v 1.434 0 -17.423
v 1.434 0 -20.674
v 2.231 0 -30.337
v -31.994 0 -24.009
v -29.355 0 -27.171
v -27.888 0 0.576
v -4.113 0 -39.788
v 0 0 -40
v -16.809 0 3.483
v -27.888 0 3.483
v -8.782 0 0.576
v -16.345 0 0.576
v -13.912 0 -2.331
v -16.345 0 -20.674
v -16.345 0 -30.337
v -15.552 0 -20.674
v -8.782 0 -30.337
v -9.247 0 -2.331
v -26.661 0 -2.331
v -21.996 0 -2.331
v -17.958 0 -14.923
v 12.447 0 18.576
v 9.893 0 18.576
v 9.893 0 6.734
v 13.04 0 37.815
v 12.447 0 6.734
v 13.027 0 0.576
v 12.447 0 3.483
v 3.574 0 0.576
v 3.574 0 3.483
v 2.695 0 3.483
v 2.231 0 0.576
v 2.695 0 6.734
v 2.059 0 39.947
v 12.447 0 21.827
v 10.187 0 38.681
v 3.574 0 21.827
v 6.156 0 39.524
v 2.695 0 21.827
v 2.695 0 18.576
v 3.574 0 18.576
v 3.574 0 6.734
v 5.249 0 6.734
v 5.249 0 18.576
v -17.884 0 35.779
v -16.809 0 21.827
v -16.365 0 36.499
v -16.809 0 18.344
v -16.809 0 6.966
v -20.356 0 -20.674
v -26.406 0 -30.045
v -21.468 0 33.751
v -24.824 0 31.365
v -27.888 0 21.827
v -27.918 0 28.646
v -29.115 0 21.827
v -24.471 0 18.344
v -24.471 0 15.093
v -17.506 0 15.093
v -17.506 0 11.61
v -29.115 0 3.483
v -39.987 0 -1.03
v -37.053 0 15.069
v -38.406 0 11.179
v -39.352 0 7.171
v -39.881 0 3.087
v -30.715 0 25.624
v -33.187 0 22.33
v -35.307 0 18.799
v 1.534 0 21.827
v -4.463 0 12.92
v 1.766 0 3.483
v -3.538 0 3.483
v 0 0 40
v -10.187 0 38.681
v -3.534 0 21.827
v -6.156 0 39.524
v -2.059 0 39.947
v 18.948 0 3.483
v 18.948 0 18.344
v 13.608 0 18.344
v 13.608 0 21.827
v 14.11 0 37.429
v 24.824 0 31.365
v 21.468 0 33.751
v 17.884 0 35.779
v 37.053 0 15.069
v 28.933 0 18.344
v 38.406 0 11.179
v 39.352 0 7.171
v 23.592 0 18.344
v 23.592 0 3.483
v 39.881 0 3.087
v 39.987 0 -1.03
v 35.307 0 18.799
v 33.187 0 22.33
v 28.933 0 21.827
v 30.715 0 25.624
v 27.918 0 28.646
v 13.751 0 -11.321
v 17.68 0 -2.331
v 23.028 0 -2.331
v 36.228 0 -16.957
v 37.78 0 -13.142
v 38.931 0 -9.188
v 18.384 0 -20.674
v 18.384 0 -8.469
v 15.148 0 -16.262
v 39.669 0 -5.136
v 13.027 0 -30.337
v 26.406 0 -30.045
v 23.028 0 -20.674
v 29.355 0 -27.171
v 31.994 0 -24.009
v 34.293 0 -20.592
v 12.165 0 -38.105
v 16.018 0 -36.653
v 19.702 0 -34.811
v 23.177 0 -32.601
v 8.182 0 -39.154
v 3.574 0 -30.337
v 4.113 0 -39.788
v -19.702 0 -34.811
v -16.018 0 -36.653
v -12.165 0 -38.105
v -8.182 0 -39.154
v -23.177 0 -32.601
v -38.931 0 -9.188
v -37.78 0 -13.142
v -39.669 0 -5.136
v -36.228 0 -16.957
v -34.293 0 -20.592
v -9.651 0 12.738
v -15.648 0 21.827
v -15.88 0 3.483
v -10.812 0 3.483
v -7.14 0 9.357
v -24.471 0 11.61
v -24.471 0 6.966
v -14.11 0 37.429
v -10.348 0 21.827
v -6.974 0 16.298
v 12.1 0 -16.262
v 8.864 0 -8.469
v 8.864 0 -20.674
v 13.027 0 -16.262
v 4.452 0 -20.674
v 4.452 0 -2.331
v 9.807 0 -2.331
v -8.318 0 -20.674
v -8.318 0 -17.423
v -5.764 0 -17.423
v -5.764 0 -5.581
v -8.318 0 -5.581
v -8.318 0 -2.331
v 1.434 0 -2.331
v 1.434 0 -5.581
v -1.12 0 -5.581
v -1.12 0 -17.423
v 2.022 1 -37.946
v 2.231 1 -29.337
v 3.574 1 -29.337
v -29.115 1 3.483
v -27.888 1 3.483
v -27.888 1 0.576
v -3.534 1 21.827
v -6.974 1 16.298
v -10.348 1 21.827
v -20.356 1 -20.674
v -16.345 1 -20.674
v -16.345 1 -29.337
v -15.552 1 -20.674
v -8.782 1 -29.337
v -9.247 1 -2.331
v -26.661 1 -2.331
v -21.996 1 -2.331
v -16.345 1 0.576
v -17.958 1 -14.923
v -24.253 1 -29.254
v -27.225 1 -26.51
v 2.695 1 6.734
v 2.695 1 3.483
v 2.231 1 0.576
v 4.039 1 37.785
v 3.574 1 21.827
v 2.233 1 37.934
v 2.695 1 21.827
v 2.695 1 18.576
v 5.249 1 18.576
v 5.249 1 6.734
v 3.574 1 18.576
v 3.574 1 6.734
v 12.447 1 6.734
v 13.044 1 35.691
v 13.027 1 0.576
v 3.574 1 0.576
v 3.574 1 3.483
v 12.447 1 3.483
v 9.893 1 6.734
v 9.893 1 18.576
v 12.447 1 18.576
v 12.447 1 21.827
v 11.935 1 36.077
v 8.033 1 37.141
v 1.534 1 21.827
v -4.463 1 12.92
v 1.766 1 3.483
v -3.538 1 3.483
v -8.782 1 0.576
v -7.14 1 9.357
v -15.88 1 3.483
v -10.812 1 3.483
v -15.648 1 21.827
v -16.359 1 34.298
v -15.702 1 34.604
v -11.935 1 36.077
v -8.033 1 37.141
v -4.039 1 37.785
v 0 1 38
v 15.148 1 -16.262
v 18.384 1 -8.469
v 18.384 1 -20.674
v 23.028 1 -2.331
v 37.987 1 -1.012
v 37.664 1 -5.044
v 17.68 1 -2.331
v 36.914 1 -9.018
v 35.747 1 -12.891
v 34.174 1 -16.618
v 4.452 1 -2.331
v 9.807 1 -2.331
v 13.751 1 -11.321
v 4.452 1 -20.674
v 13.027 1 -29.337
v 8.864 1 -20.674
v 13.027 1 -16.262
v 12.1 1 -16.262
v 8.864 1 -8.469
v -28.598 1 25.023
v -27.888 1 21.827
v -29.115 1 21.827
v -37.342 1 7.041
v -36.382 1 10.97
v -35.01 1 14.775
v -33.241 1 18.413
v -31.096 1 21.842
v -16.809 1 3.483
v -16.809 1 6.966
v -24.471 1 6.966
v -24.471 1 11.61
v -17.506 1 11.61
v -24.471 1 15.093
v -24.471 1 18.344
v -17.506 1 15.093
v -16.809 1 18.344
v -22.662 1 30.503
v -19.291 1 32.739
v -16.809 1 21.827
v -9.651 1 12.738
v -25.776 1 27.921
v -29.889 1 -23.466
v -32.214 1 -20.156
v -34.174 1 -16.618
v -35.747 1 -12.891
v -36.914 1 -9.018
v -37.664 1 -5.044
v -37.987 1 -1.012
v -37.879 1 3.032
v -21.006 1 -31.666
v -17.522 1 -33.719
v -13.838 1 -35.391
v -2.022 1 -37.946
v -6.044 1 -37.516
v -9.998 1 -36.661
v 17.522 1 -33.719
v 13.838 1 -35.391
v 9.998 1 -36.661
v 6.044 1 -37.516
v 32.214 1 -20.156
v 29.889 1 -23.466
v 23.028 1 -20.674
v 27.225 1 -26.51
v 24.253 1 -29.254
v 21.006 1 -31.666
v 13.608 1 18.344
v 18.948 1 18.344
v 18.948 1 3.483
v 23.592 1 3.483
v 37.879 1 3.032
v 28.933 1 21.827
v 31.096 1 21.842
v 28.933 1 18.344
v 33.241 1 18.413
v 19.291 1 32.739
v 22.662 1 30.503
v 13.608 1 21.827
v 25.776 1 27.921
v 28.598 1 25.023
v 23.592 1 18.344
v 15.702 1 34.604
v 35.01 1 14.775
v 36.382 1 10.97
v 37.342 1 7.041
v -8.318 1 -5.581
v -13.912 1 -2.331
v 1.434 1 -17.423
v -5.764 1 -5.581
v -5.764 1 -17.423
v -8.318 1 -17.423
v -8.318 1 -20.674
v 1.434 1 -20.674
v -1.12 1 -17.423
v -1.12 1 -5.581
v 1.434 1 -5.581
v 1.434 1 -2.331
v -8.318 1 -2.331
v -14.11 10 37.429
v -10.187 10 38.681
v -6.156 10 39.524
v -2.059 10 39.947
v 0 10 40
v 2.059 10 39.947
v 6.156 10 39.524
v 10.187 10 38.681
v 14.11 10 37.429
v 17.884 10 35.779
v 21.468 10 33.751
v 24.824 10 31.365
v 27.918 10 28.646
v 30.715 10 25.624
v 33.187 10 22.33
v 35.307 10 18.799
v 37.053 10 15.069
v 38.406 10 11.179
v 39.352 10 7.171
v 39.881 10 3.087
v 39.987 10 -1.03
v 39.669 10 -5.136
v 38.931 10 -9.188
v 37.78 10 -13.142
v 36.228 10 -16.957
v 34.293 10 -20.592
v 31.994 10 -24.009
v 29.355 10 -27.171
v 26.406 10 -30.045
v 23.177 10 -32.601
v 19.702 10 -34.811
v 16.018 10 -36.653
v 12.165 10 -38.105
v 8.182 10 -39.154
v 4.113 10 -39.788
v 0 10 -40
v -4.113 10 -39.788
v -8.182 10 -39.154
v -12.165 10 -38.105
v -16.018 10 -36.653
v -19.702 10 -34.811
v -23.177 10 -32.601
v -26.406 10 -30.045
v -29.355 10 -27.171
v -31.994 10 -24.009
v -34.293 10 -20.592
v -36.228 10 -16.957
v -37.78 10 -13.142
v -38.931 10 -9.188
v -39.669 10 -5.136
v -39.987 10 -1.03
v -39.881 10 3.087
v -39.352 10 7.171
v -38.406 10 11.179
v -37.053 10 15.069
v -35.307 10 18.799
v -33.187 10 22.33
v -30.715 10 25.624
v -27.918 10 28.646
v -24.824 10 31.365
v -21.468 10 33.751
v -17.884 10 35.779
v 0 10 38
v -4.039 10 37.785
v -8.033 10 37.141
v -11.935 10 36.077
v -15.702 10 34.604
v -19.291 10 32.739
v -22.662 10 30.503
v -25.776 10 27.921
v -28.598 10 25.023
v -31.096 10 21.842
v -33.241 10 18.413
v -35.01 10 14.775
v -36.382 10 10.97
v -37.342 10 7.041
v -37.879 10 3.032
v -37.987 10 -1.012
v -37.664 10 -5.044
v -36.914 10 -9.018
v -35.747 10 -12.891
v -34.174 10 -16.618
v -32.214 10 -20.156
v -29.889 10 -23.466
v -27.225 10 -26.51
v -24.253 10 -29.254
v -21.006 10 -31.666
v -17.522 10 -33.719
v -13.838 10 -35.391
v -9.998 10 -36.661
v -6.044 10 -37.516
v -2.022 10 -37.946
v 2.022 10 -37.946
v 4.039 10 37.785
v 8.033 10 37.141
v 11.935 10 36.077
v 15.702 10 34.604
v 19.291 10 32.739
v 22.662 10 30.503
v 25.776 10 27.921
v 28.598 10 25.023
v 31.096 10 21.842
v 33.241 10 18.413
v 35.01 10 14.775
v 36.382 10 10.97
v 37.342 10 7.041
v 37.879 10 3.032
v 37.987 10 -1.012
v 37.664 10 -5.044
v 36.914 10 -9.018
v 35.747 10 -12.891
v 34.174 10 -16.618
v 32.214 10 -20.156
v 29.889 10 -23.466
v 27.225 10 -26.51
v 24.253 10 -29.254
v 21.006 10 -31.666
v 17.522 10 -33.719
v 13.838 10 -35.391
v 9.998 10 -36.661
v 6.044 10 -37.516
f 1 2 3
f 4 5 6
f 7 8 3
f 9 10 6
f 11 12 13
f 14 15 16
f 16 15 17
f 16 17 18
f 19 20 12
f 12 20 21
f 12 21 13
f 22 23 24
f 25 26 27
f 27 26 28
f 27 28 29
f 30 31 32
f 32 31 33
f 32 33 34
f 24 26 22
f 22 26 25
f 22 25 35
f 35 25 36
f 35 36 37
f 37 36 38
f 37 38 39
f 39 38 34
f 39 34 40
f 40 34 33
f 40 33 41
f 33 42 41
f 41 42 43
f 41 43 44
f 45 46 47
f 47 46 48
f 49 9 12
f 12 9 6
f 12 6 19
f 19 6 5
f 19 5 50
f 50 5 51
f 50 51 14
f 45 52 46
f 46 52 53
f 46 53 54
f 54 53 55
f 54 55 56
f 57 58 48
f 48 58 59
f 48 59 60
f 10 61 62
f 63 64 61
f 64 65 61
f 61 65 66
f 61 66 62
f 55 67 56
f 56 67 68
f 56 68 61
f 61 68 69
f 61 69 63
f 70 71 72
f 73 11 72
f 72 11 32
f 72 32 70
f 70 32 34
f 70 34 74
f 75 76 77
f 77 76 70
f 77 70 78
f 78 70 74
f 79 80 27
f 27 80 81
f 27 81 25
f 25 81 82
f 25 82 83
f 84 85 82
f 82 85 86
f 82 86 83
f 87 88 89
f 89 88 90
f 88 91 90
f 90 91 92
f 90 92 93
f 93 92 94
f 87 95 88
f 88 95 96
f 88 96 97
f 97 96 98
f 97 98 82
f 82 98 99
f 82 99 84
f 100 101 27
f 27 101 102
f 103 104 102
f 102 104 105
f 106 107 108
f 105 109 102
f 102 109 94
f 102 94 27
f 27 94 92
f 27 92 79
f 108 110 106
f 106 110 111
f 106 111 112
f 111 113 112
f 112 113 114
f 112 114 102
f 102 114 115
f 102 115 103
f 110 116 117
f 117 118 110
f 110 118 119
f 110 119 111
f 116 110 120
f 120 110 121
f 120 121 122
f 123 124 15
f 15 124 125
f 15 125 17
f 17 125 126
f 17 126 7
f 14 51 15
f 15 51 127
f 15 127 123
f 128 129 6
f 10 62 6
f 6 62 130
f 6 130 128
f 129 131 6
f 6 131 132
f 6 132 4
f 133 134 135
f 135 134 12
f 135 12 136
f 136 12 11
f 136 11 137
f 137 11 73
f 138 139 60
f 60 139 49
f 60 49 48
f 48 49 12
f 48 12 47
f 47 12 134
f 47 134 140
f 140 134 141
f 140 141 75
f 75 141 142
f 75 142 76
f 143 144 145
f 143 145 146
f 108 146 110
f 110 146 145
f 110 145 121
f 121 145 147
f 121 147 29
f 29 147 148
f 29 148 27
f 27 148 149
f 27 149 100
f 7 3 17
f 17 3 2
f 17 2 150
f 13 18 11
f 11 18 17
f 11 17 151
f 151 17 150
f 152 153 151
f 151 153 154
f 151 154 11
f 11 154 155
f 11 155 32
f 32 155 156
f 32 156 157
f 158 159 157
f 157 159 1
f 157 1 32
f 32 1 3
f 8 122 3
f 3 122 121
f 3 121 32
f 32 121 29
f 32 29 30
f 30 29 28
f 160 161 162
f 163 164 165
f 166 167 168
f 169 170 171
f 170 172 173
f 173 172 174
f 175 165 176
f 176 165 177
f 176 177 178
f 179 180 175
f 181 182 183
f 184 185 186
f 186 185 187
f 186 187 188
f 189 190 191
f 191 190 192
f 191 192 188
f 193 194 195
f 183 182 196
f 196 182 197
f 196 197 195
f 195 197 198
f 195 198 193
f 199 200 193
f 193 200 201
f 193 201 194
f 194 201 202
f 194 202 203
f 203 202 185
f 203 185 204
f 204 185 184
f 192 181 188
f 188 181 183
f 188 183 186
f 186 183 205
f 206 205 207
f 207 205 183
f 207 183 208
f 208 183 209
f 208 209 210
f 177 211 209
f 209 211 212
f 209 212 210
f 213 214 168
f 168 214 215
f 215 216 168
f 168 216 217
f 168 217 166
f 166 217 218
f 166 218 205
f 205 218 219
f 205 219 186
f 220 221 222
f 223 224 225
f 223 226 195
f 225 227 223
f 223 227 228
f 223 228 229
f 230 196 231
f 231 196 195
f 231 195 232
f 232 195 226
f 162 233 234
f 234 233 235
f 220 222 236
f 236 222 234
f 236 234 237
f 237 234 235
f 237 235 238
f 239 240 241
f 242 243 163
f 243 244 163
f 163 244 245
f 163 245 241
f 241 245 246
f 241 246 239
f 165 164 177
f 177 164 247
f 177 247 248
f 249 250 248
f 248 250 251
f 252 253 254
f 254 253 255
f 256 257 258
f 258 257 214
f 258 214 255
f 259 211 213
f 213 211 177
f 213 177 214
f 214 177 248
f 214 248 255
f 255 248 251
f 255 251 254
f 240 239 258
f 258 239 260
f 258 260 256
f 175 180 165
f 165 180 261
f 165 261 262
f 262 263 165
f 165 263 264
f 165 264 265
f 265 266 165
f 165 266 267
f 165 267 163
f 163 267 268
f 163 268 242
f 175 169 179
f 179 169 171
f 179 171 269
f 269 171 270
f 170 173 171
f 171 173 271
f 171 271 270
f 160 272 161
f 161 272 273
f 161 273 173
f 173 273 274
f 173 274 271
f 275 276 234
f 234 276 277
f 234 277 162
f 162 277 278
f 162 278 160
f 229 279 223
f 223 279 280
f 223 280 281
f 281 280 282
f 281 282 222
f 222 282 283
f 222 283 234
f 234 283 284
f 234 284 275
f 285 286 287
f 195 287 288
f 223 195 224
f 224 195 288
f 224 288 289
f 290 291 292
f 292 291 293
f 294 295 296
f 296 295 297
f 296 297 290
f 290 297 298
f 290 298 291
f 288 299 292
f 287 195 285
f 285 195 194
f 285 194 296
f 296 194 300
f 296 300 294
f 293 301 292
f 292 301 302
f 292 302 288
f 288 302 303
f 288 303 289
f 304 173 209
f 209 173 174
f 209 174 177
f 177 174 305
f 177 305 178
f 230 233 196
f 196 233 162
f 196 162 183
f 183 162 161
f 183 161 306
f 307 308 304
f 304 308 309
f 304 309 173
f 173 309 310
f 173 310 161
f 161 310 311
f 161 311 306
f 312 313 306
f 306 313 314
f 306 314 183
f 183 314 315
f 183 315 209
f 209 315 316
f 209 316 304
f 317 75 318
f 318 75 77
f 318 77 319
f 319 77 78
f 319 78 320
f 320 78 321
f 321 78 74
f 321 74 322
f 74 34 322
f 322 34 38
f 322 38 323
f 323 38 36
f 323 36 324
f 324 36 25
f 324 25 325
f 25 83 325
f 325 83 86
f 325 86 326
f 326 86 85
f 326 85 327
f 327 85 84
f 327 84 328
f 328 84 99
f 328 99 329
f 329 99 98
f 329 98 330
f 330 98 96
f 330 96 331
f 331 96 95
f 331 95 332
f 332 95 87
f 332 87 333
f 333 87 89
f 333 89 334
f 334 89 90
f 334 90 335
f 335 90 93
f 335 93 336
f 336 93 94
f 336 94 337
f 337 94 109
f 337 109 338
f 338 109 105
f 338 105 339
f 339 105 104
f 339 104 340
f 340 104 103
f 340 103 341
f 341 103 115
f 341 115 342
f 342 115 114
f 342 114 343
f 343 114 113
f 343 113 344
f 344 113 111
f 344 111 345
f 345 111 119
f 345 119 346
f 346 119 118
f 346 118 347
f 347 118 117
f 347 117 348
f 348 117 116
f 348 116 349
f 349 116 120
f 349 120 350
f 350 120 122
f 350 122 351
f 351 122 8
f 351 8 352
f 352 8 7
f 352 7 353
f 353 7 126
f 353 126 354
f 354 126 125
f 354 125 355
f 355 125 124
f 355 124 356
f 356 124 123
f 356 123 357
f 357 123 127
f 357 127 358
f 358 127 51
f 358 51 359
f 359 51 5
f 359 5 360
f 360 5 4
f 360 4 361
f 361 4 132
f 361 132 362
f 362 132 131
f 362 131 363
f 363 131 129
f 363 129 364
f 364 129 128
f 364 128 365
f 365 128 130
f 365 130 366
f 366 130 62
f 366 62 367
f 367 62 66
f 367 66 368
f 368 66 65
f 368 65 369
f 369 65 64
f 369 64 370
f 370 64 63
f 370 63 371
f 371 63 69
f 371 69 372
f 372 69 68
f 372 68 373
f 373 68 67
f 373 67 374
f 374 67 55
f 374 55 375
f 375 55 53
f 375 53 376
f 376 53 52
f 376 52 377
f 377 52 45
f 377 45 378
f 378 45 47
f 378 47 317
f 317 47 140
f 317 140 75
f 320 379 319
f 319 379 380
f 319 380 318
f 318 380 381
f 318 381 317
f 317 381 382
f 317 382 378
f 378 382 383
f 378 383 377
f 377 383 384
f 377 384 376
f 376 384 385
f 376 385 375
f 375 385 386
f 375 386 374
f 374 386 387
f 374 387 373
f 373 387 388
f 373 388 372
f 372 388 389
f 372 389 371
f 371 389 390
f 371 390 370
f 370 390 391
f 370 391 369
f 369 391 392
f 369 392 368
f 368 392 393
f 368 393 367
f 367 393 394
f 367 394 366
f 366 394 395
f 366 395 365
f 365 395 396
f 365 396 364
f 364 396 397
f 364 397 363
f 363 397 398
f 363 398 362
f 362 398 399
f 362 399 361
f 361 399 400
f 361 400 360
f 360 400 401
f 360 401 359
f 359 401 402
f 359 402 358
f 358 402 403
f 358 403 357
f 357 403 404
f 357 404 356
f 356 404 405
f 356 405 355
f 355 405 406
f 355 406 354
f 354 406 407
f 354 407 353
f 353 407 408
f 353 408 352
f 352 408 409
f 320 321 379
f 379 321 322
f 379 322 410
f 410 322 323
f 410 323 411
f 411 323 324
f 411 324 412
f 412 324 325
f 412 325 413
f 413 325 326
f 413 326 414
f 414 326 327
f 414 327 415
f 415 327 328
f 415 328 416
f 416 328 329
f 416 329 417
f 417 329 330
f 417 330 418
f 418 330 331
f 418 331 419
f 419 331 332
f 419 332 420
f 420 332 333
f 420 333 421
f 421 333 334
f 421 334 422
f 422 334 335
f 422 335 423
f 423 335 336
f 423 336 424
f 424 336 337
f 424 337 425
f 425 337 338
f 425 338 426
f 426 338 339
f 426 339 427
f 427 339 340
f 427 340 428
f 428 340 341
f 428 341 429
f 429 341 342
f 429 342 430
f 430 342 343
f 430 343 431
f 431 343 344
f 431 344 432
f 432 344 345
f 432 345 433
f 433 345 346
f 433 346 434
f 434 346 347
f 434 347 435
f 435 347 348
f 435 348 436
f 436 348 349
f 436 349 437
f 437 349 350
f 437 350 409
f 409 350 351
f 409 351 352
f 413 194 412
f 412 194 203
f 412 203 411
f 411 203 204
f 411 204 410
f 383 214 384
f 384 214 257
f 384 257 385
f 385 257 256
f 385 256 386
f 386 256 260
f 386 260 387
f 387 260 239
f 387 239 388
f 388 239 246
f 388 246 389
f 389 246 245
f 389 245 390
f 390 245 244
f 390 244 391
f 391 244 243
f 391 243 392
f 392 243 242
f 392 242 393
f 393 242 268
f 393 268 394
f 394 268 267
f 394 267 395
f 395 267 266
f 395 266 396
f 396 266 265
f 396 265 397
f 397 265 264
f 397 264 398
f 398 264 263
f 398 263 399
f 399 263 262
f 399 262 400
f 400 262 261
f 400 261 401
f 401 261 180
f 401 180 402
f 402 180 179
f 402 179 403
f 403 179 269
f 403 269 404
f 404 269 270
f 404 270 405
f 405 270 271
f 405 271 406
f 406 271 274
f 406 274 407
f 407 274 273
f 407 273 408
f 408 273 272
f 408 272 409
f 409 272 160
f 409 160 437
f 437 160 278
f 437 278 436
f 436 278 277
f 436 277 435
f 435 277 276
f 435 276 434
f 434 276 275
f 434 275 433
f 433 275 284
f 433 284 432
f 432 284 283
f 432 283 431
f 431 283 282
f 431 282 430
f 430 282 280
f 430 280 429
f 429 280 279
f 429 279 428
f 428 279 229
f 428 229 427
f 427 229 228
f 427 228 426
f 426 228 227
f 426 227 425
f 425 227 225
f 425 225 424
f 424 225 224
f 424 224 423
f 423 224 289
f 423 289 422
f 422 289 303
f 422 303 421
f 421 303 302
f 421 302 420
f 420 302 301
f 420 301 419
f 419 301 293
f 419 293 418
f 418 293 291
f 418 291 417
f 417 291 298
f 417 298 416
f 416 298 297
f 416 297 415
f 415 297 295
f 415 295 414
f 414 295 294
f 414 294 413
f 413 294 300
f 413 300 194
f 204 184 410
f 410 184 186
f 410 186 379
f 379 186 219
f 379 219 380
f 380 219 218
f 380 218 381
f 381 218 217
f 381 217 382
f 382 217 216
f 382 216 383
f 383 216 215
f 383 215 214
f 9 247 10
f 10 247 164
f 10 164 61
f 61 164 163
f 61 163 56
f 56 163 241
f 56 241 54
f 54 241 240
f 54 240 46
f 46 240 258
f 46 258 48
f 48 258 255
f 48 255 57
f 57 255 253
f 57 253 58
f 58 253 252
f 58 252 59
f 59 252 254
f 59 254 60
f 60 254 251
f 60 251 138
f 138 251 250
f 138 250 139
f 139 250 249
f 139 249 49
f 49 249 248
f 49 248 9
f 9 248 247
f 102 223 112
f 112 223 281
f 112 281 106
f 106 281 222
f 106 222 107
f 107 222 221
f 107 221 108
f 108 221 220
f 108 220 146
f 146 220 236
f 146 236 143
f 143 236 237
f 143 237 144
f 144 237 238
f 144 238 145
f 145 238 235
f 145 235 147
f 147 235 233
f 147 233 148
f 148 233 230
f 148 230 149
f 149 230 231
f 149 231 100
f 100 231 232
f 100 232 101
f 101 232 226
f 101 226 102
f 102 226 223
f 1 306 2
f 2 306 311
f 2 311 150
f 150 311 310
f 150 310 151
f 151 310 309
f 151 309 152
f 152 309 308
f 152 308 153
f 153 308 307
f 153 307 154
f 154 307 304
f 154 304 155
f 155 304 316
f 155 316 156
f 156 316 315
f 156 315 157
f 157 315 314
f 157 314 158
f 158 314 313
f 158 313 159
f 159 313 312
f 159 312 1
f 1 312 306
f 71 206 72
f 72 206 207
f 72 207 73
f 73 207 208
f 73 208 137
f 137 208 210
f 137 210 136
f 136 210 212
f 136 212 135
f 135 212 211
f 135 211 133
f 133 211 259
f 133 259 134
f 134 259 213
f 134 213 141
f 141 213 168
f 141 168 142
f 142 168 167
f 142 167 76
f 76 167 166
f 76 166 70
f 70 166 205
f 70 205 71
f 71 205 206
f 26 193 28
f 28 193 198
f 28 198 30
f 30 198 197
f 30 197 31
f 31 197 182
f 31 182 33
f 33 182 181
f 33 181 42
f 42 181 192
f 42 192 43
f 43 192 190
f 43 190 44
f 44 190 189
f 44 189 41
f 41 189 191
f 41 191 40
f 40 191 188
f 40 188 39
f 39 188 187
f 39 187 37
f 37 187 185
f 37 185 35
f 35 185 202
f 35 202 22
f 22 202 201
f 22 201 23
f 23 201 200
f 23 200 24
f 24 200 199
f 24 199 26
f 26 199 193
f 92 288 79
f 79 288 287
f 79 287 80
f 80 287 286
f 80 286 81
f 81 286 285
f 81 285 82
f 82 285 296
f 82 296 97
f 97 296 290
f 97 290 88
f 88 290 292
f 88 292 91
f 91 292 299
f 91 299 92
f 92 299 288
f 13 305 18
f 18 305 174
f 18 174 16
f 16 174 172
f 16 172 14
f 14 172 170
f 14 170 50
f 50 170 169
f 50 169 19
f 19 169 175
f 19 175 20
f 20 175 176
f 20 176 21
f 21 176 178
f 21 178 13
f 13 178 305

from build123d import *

# Parameters (mm, degrees)
SKETCH1_R           = 40
BOSS_EXTRUDE1_DEPTH = 10
SKETCH2_R           = 38
CUT_EXTRUDE1_DEPTH  = 9
CUT_EXTRUDE2_DEPTH  = 8


with BuildPart() as part:
    # Sketch1 → Boss-Extrude1 (new body)
    with BuildSketch(Plane(origin=(0, 0, 0), x_dir=(1, 0, 0), z_dir=(0, 1, 0))):
        with Locations(Location((0, 0, 0), (0, 0, 270))):
            Circle(SKETCH1_R)
    extrude(amount=BOSS_EXTRUDE1_DEPTH)

    # Sketch2 → Cut-Extrude1 (cut)
    with BuildSketch(Plane(origin=(0, 10, 0), x_dir=(1, 0, 0), z_dir=(0, 1, 0))):
        with Locations(Location((0, 0, 0), (0, 0, 270))):
            Circle(SKETCH2_R)
    extrude(amount=-CUT_EXTRUDE1_DEPTH, mode=Mode.SUBTRACT)

    # Sketch4 → Cut-Extrude2 (cut)
    with BuildSketch(Plane.XZ):
        Polygon((-29.11512784, 3.483476928), (-29.11512784, 21.826543334), (-16.809019998, 21.826543334), (-16.809019998, 18.343682624), (-24.47131356, 18.343682624), (-24.47131356, 15.093012628), (-17.50559214, 15.093012628), (-17.50559214, 11.610151918), (-24.47131356, 11.610151918), (-24.47131356, 6.966337638), (-16.809019998, 6.966337638), (-16.809019998, 3.483476928), align=None)
        Polygon((1.766237122, 3.483476928), (-3.537869501, 3.483476928), (-7.140453548, 9.357176396), (-10.811969213, 3.483476928), (-15.880257142, 3.483476928), (-9.651015643, 12.738453669), (-15.648066428, 21.826543334), (-10.347587785, 21.826543334), (-6.973566472, 16.297501957), (-3.534241521, 21.826543334), (1.534046408, 21.826543334), (-4.463004377, 12.919852664), align=None)
        Polygon((12.447009966, 3.483476928), (2.694999978, 3.483476928), (2.694999978, 6.734146924), (5.249097832, 6.734146924), (5.249097832, 18.575873338), (2.694999978, 18.575873338), (2.694999978, 21.826543334), (12.447009966, 21.826543334), (12.447009966, 18.575873338), (9.892912112, 18.575873338), (9.892912112, 6.734146924), (12.447009966, 6.734146924), align=None)
        Polygon((18.948349958, 3.483476928), (18.948349958, 18.343682624), (13.607963536, 18.343682624), (13.607963536, 21.826543334), (28.93255066, 21.826543334), (28.93255066, 18.343682624), (23.592164238, 18.343682624), (23.592164238, 3.483476928), align=None)
        Polygon((-9.246875158, -2.330611882), (-15.552304236, -20.673678288), (-20.355749631, -20.673678288), (-26.661178709, -2.330611882), (-21.995596549, -2.330611882), (-17.957654913, -14.923330137), (-13.912457318, -2.330611882), align=None)
        Polygon((1.433897686, -20.673678288), (-8.318112302, -20.673678288), (-8.318112302, -17.423008292), (-5.764014448, -17.423008292), (-5.764014448, -5.581281878), (-8.318112302, -5.581281878), (-8.318112302, -2.330611882), (1.433897686, -2.330611882), (1.433897686, -5.581281878), (-1.120200168, -5.581281878), (-1.120200168, -17.423008292), (1.433897686, -17.423008292), align=None)
        Polygon((23.027634088, -20.673678288), (18.383819808, -20.673678288), (18.383819808, -8.469153883), (15.147661732, -16.262054722), (12.10015861, -16.262054722), (8.864000534, -8.469153883), (8.864000534, -20.673678288), (4.452376968, -20.673678288), (4.452376968, -2.330611882), (9.807275309, -2.330611882), (13.750889468, -11.32074609), (17.679991706, -2.330611882), (23.027634088, -2.330611882), align=None)
    extrude(amount=-CUT_EXTRUDE2_DEPTH, mode=Mode.SUBTRACT)


solid = part.part
